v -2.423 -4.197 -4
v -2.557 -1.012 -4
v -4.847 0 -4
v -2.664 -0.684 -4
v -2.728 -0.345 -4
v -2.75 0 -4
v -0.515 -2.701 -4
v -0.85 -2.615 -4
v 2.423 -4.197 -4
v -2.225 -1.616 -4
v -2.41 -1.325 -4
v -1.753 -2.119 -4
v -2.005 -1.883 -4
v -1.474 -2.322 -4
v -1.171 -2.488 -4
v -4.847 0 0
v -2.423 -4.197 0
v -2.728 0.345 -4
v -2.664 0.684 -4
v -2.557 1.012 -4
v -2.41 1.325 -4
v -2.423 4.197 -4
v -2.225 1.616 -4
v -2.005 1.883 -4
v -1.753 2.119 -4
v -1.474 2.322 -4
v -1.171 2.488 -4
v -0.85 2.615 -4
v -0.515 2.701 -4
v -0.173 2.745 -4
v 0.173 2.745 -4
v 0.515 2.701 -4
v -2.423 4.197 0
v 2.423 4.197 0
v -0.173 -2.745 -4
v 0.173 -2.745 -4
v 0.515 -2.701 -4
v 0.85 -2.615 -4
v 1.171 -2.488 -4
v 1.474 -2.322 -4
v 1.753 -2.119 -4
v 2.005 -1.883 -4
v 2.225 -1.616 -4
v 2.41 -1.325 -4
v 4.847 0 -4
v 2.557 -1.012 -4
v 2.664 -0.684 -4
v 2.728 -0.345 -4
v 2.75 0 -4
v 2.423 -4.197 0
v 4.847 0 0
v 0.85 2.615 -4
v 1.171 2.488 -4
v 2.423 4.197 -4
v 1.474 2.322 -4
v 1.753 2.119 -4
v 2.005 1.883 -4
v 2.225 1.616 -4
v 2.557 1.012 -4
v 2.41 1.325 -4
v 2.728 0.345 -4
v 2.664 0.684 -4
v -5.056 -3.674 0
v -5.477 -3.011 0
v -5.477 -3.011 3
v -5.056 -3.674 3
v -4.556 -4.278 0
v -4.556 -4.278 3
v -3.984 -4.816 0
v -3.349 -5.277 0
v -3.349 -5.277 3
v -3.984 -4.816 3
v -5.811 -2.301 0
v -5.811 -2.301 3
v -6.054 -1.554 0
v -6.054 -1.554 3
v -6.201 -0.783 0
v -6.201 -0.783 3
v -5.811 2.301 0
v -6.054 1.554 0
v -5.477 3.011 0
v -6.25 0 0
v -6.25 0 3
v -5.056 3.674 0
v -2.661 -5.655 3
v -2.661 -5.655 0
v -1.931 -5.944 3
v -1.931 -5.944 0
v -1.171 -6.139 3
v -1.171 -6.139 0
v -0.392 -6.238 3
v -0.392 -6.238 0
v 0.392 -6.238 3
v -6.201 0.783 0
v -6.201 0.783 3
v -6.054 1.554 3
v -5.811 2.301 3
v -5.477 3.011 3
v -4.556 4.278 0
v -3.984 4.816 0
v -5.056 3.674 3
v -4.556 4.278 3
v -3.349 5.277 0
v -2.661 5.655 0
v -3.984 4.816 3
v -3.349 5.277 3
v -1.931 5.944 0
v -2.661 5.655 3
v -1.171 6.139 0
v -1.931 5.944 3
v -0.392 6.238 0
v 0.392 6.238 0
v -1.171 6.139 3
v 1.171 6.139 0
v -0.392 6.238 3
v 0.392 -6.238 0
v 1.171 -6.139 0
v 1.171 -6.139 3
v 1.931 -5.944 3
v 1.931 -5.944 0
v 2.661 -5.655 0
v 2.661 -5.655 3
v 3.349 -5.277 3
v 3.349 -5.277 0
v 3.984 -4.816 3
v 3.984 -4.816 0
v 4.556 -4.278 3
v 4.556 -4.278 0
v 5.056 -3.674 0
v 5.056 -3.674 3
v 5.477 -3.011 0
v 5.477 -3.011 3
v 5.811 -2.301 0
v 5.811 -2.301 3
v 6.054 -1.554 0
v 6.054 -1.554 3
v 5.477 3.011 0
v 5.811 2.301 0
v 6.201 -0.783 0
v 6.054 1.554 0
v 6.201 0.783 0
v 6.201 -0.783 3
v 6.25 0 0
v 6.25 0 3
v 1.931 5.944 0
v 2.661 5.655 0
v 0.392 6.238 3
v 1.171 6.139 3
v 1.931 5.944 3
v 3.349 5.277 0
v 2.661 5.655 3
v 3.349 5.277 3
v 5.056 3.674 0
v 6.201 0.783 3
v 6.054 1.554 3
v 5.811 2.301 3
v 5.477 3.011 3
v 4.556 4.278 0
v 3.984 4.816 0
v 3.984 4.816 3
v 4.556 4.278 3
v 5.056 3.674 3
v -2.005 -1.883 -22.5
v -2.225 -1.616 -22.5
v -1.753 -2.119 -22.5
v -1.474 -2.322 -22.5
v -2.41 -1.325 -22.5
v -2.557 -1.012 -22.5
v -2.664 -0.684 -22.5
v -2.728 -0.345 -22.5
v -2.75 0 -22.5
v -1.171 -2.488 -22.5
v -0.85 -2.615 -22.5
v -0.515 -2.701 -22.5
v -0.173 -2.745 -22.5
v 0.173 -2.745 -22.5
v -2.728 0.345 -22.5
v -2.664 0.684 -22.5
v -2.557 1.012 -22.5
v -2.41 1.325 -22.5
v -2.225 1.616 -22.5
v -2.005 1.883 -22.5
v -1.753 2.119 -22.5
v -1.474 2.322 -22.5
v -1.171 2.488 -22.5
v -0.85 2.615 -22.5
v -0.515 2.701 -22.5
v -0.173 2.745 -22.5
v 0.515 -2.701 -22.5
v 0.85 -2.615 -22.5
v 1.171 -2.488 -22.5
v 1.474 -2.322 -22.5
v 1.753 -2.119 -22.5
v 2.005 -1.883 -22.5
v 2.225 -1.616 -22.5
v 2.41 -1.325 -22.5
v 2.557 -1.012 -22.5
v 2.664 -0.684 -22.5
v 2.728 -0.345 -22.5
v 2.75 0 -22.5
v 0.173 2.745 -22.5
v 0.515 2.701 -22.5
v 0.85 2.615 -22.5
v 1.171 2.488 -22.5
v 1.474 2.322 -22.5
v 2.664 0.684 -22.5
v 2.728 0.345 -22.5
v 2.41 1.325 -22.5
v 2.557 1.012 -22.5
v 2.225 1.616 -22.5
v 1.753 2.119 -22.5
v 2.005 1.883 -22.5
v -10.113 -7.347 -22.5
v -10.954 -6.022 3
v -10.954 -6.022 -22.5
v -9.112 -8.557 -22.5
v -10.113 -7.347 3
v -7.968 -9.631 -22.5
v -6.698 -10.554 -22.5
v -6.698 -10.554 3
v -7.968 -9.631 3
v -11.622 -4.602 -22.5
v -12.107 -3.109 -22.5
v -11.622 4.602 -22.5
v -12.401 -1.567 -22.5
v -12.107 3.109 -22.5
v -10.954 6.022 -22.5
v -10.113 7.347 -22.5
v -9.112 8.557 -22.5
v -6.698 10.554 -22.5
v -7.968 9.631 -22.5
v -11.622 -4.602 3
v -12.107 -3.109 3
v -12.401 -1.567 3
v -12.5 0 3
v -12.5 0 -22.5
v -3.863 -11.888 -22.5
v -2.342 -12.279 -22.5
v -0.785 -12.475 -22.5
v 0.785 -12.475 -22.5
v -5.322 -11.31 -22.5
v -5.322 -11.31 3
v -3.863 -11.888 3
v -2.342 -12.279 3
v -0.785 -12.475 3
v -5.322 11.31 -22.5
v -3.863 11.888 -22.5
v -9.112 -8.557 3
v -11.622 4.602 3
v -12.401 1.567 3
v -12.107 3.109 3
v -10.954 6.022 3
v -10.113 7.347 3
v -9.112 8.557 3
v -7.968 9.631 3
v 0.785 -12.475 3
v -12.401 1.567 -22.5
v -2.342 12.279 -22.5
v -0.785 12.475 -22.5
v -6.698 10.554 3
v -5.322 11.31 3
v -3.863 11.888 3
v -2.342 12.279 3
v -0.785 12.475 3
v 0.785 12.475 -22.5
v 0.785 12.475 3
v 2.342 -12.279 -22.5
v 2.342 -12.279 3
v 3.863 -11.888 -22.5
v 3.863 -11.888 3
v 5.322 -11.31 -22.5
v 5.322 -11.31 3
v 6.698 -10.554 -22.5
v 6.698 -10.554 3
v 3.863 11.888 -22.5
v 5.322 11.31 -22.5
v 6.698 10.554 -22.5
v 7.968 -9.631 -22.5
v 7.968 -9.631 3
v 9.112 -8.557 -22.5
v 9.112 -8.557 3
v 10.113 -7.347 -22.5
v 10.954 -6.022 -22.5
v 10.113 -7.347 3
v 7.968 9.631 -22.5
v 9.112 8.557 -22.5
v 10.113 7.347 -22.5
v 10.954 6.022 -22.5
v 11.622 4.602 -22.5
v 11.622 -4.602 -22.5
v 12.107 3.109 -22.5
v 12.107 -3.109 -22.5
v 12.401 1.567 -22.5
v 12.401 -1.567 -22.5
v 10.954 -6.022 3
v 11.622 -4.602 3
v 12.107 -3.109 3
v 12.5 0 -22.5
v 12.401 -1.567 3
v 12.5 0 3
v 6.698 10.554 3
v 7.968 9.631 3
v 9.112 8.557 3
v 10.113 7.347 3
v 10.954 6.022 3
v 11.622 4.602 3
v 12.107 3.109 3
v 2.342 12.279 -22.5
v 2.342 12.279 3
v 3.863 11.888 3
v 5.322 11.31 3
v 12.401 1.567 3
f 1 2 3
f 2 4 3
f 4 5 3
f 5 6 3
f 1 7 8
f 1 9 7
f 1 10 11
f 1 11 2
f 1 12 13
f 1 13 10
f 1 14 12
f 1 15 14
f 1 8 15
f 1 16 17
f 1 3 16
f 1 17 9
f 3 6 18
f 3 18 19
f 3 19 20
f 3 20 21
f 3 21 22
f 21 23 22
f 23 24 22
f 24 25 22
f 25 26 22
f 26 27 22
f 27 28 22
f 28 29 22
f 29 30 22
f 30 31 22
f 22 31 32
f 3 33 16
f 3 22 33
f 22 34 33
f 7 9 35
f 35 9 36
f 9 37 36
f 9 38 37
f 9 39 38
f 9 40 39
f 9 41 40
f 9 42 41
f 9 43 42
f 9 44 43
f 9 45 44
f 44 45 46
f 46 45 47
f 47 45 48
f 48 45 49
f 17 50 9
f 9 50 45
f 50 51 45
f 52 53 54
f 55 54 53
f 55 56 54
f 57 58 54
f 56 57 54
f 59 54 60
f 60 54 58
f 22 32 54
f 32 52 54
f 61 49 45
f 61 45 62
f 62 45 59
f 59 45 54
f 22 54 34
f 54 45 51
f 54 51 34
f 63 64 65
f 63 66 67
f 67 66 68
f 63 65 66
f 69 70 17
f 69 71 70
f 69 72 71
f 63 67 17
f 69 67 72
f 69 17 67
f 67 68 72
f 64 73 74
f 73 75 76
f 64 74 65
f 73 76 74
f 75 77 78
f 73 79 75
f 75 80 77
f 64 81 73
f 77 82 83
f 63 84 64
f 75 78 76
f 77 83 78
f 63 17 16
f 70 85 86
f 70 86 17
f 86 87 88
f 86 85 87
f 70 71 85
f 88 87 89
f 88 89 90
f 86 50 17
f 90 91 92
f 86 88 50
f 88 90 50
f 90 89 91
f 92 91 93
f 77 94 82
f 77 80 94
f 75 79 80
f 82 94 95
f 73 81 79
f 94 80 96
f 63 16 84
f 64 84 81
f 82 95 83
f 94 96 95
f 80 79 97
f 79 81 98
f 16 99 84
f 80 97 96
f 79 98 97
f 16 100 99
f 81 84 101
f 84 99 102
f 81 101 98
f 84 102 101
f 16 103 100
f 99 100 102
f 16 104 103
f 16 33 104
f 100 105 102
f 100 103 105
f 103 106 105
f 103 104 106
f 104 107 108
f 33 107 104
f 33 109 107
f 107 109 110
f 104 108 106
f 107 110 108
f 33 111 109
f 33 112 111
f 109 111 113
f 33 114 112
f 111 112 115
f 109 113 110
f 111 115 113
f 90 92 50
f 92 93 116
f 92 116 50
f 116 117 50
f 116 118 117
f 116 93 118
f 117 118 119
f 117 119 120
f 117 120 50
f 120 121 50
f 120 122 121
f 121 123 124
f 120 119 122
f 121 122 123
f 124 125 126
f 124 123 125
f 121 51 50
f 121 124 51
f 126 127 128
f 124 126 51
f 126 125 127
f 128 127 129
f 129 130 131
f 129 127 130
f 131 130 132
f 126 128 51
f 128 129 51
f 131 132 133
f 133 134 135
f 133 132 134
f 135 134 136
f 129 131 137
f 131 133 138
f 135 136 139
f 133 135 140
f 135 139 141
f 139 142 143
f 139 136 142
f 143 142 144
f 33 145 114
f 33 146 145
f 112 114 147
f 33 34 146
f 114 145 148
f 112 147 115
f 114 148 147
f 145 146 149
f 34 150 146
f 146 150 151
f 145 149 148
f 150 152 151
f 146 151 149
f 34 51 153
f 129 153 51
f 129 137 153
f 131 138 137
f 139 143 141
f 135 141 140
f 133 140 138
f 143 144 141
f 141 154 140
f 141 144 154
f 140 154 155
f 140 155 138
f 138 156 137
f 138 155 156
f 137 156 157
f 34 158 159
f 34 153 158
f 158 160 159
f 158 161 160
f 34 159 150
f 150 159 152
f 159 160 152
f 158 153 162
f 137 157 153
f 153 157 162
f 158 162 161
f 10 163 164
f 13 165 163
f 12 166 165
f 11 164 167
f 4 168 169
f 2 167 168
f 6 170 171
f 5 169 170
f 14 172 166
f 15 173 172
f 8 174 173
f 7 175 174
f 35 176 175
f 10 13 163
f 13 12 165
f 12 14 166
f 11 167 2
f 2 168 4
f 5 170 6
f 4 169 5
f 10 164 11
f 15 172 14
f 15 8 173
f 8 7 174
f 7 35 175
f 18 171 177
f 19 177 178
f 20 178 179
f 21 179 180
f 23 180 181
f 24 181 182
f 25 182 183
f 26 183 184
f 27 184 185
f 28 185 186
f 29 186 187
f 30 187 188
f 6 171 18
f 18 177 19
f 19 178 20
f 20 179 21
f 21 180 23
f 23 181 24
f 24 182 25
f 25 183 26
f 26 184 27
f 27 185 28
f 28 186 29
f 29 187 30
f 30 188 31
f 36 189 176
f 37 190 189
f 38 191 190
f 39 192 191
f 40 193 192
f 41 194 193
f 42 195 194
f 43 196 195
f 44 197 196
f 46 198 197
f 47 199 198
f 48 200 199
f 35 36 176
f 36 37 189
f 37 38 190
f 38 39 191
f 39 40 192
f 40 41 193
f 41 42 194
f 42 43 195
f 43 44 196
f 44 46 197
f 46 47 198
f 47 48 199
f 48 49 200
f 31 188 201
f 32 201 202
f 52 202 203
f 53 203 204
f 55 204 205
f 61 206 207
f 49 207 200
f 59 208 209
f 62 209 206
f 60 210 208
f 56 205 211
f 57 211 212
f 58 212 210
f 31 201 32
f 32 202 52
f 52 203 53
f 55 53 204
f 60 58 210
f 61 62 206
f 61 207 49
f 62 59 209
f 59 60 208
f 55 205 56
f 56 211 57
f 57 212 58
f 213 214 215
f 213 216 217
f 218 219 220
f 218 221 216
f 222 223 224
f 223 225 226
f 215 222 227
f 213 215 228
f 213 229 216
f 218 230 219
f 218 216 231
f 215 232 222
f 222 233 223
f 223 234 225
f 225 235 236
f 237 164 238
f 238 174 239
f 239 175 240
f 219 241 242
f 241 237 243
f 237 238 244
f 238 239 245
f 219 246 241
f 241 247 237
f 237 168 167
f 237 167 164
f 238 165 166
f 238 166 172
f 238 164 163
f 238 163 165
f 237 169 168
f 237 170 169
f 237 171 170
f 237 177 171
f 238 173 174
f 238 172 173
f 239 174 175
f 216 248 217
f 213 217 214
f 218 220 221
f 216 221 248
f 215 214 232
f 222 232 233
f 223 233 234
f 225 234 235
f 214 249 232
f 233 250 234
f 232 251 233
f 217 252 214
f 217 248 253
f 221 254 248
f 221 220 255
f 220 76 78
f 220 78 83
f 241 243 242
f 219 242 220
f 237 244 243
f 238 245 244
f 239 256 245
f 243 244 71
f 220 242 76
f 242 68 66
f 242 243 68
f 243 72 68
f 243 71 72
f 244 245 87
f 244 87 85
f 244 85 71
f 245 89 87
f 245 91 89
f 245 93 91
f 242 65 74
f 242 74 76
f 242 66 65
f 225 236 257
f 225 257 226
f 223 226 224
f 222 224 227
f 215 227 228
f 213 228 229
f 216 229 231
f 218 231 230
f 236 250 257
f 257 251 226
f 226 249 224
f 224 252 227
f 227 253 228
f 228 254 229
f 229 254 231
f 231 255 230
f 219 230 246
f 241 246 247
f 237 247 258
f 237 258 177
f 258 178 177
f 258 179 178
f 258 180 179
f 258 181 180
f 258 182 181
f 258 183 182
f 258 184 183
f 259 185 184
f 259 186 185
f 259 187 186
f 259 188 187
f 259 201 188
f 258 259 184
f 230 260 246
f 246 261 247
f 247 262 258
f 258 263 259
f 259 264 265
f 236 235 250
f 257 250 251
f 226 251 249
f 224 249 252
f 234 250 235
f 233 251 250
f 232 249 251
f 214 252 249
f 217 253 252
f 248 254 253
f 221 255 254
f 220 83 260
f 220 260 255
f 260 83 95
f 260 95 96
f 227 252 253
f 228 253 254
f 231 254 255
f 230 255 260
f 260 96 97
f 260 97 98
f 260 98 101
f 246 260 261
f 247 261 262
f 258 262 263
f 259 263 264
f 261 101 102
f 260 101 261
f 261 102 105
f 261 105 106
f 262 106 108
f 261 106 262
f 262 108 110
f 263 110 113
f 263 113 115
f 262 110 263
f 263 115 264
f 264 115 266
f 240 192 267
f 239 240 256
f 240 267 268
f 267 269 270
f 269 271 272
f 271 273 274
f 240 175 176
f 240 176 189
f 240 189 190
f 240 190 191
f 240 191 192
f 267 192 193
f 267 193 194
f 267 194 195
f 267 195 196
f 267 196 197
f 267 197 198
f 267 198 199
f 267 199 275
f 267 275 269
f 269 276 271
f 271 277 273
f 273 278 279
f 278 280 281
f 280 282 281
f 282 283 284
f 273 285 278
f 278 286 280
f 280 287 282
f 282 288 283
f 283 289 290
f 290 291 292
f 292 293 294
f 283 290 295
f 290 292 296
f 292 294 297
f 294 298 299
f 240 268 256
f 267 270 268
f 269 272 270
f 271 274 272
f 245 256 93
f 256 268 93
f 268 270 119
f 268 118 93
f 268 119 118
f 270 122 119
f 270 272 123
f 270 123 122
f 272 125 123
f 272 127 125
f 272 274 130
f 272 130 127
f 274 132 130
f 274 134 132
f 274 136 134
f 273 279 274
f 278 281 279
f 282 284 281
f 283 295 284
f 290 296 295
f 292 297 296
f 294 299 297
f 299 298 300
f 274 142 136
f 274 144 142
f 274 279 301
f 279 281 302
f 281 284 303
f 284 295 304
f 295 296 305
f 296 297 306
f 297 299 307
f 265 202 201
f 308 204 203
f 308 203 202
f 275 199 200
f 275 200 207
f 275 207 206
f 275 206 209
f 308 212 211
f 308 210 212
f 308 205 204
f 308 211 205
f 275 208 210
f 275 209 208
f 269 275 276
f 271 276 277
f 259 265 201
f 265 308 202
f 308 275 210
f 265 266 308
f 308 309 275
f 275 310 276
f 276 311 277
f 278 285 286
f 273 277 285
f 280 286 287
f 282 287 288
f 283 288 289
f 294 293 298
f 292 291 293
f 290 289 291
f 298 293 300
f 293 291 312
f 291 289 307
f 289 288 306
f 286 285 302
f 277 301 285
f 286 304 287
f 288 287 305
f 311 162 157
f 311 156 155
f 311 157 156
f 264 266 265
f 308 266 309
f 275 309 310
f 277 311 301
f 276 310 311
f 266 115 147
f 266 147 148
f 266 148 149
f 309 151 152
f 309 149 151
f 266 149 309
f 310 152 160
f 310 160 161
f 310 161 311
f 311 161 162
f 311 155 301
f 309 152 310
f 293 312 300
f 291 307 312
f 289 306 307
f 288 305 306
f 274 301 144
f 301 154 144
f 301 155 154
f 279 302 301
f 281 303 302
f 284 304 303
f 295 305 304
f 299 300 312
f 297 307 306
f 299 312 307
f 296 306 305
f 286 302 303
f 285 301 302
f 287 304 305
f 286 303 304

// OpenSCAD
$fn = 50;

difference() {
	union() {
		translate(v = [0, 0, -22.5]) {
			cylinder(h = 25.5, r = 12.5);
		}
	}
	union() {
		translate(v = [0, 0, 0]) {
			rotate(a = [0, 0, 0]) {
				difference() {
					union() {
						translate(v = [0, 0, -4]) {
							linear_extrude(height = 4) {
								polygon(points = [[4.8468, 0.0], [2.4234000000000004, 4.197451927062417], [-2.423399999999999, 4.197451927062417], [-4.8468, 5.935618106107392e-16], [-2.423400000000002, -4.197451927062416], [2.423399999999997, -4.197451927062419]]);
							}
						}
					}
					union();
				}
			}
		}
		#cylinder(h = 3, r = 6.25);
		#translate(v = [0, 0, -100.0]) {
			cylinder(h = 200, r = 2.75);
		}
	}
}
